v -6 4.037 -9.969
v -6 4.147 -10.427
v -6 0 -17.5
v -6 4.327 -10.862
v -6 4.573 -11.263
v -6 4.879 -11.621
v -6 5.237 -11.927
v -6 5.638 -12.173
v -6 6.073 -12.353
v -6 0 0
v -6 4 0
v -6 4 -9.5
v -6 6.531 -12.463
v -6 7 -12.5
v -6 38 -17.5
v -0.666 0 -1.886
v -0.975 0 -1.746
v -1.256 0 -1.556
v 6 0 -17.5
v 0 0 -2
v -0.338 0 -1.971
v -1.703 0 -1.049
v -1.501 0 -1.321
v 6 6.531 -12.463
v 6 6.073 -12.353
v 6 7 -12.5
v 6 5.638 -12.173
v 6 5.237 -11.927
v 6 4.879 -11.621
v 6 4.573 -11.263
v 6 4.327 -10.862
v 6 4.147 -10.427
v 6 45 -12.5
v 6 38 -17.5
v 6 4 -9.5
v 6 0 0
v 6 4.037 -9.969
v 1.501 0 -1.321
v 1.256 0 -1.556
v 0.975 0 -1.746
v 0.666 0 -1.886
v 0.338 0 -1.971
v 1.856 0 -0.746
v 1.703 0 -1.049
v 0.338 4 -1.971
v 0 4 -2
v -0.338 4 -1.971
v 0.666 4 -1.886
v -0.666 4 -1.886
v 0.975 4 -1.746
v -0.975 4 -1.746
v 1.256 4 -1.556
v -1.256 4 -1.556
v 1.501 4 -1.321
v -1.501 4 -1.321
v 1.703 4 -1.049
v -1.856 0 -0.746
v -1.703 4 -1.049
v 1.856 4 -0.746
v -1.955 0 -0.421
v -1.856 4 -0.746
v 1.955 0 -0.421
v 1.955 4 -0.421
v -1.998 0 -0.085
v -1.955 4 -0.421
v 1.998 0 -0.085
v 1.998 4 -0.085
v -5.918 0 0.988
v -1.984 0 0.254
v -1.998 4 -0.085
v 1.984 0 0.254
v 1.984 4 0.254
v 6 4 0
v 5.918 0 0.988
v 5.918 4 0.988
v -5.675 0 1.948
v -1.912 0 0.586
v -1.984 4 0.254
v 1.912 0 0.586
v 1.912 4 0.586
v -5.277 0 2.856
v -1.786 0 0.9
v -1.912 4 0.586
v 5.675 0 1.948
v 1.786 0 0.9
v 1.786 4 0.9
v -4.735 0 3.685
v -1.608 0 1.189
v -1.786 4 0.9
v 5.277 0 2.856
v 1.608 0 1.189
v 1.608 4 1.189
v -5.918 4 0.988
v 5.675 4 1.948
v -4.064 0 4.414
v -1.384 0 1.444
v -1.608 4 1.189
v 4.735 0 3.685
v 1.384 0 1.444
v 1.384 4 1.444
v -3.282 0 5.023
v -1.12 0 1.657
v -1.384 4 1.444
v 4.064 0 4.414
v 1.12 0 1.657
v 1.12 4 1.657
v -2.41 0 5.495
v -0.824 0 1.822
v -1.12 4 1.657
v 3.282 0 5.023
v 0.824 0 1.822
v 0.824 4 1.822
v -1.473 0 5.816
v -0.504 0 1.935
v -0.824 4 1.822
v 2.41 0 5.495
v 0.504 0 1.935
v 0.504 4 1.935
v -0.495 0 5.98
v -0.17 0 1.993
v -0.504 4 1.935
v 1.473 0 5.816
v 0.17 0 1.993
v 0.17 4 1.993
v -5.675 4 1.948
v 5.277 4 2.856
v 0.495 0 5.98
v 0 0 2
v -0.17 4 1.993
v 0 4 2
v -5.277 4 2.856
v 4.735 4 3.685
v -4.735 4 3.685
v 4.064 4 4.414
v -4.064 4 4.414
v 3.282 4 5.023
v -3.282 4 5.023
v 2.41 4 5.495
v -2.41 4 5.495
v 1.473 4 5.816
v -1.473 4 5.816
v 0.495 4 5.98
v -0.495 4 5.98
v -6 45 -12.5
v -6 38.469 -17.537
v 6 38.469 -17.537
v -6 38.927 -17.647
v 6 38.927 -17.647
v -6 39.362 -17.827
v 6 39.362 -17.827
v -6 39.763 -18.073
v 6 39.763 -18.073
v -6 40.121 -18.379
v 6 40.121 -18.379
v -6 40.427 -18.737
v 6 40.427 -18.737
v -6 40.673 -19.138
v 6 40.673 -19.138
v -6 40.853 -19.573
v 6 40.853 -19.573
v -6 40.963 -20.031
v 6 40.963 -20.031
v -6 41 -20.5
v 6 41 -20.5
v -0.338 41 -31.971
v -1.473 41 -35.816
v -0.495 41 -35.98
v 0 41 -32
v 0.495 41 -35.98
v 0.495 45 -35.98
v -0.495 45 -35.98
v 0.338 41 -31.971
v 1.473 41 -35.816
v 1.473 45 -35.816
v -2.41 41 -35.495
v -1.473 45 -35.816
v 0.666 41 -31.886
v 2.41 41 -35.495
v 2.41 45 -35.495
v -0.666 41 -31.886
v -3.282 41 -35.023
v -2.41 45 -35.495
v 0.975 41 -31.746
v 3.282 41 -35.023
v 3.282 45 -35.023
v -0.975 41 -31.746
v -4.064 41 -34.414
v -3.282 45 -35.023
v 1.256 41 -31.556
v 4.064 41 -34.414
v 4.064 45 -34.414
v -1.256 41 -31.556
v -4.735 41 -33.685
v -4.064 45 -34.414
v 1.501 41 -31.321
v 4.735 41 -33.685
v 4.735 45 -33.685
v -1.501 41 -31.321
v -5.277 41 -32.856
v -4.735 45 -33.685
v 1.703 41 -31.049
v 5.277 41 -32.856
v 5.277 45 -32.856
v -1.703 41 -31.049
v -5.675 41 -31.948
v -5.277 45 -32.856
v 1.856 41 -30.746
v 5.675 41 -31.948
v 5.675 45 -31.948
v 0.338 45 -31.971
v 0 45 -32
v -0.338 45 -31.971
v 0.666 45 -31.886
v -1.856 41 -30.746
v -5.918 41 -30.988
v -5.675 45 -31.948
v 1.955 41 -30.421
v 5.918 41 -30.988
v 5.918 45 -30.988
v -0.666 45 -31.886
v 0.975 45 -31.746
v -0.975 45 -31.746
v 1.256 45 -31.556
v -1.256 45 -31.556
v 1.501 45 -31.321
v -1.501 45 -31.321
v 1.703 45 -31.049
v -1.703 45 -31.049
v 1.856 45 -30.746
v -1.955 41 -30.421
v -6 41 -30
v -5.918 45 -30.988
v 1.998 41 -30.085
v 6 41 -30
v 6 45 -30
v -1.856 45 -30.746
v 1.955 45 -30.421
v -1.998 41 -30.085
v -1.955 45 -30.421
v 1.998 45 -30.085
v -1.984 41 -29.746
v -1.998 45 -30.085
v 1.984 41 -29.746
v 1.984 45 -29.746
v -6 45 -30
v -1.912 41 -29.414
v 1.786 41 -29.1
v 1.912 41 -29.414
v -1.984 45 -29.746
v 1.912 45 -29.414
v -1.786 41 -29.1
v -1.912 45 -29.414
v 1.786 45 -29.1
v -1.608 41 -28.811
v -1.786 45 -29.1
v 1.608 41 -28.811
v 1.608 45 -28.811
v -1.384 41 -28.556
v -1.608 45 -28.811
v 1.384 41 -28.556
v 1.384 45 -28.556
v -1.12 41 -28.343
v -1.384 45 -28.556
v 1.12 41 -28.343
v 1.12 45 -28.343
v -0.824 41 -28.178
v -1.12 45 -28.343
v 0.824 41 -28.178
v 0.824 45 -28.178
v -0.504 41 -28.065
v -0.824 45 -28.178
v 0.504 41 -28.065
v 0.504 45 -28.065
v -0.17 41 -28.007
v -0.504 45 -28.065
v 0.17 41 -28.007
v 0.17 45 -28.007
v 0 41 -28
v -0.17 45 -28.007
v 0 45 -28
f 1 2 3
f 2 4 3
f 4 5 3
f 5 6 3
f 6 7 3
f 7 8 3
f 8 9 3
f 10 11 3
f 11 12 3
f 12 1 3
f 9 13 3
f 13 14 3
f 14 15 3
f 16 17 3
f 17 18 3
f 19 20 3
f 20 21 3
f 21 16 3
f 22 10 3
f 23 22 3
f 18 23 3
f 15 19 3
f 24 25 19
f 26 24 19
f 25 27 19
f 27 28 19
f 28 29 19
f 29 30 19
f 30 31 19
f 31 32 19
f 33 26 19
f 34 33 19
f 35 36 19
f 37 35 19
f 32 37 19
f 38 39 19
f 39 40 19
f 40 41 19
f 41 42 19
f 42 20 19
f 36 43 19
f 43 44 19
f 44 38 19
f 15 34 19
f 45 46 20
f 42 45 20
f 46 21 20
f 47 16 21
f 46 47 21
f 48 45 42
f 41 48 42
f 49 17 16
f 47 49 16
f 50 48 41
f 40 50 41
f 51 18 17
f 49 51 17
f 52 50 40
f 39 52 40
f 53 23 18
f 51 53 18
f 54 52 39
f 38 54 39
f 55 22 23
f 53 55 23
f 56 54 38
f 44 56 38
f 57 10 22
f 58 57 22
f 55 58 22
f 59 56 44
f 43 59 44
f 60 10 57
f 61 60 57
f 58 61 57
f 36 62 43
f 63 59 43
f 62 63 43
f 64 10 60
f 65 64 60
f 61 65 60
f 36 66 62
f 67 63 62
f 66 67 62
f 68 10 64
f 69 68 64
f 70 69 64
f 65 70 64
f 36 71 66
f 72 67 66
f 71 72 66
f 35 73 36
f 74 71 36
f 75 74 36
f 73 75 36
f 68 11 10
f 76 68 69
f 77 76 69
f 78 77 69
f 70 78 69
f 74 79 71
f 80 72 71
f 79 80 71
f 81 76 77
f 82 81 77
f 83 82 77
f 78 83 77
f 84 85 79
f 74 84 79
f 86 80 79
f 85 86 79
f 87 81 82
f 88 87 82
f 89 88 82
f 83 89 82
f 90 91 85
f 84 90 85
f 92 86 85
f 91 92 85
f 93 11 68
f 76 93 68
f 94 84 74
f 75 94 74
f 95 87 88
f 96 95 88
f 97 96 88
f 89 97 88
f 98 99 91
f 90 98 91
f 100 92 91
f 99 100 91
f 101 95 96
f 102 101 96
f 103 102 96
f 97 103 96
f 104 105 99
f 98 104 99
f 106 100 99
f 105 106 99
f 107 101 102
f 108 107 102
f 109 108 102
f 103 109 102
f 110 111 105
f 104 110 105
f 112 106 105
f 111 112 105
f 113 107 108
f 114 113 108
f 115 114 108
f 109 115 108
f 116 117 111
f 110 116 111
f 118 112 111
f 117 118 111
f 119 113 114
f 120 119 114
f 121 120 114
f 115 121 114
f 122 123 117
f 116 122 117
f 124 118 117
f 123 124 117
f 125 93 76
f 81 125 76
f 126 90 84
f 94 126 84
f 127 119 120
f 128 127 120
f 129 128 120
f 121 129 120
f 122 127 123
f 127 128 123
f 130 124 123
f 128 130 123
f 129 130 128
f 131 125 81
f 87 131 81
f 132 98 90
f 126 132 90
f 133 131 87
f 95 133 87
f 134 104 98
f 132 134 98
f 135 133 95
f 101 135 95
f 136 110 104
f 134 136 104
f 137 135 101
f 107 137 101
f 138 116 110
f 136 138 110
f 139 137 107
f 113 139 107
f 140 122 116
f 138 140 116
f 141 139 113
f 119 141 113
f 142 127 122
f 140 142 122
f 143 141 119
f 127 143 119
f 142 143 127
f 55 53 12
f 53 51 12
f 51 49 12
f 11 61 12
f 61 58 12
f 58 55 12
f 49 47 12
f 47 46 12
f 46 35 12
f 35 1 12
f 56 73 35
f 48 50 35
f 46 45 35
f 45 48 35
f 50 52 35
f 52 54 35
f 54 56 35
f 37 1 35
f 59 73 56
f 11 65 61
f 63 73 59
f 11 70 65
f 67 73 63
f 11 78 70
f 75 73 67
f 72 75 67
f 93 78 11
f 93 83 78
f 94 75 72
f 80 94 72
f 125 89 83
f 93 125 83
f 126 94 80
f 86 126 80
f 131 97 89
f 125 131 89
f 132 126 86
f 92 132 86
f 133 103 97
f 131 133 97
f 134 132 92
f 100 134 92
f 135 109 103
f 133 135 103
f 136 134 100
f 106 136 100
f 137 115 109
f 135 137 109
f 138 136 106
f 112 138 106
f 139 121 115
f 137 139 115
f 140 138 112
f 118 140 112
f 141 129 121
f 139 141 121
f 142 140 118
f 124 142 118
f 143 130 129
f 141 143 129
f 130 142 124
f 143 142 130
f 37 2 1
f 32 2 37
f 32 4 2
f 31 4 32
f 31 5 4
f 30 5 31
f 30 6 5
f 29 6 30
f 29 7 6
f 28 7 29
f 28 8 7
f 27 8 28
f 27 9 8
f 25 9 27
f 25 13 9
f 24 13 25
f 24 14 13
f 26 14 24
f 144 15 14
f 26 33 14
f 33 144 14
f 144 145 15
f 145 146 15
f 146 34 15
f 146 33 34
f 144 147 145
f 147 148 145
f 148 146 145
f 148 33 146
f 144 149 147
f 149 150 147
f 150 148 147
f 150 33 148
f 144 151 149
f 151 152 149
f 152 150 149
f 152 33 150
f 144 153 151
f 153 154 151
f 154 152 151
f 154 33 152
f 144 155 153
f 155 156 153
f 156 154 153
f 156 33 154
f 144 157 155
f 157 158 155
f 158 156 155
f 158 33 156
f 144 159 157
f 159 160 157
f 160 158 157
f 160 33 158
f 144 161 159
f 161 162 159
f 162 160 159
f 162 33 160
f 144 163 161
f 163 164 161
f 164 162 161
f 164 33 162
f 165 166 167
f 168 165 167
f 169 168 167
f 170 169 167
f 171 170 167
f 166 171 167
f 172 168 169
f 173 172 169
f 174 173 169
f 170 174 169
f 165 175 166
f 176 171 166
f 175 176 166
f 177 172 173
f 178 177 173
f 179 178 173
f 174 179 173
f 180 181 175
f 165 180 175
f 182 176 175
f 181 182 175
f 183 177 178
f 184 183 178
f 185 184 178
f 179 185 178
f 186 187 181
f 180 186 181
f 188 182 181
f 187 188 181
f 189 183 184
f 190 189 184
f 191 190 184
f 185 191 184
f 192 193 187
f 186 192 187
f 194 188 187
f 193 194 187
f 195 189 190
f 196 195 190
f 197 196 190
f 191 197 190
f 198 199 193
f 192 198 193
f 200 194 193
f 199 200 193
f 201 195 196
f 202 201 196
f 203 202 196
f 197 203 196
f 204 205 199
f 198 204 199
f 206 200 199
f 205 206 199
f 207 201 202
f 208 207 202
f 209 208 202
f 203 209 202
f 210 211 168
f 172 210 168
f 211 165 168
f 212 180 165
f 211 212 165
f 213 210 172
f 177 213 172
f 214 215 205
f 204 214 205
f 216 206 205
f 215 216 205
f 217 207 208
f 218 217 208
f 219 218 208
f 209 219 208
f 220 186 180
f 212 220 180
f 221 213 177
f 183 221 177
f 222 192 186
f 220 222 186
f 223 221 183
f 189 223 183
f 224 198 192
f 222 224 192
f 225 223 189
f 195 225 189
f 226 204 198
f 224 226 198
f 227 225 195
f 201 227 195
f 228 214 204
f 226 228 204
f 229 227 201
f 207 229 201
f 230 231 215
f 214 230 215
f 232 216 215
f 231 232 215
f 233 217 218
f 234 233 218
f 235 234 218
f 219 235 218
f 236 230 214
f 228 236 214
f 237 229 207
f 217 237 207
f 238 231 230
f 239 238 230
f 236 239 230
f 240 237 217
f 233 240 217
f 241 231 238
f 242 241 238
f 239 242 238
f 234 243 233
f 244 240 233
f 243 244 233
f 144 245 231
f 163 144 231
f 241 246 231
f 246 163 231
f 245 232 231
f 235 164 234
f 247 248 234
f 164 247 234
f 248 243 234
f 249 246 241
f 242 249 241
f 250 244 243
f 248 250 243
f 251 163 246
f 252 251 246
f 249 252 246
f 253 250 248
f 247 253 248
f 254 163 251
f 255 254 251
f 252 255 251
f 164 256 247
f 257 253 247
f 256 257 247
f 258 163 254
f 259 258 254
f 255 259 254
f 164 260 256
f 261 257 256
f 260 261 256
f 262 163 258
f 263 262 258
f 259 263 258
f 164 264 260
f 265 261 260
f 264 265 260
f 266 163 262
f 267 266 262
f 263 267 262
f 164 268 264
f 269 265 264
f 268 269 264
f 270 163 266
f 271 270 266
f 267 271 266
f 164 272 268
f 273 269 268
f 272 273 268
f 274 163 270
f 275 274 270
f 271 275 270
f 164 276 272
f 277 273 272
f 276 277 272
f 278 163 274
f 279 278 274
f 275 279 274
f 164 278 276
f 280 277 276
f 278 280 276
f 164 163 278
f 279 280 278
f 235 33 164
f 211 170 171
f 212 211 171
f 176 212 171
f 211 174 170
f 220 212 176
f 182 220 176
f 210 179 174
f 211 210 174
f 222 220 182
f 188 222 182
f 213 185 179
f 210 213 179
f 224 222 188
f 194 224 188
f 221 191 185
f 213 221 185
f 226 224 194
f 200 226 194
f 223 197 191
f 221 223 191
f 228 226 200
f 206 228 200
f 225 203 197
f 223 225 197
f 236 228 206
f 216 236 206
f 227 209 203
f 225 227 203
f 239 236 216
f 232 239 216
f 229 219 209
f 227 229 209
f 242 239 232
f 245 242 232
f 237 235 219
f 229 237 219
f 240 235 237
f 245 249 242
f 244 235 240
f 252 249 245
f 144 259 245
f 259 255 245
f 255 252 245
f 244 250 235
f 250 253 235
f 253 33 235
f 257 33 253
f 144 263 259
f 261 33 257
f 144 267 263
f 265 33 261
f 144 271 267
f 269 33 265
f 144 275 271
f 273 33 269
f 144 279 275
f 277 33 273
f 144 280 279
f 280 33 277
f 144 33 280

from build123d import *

# Parameters (mm, degrees)
SKETCH1_R                      = 2
BOSS_EXTRUDE1_DEPTH            = 4
SKETCH2_W                      = 12
SKETCH2_H                      = 5
BOSS_EXTRUDE2_DEPTH            = 37
SKETCH3_R                      = 2
SKETCH3_W                      = 12
SKETCH3_H                      = 5
BOSS_EXTRUDE3_DEPTH            = 4
FILLET1_R                      = 3
CUT_EXTRUDE1_REACH             = 56.891
SKETCH4_W                      = 12
SKETCH4_H                      = 19.420745895
CUT_EXTRUDE1_DIRECTION_2_DEPTH = 10


with BuildPart() as part:
    # Sketch1 → Boss-Extrude1 (new body)
    with BuildSketch(Plane(origin=(0, 0, 0), x_dir=(1, 0, 0), z_dir=(0, 1, 0))):
        with BuildLine():
            ThreePointArc((6, 30), (0, 36), (-6, 30))
            Line((-6, 30), (-6, 0))
            ThreePointArc((-6, 0), (0, -6), (6, 0))
            Line((6, 0), (6, 30))
        make_face()
        with Locations(Location((0, 30, 0), (0, 0, 270))):
            Circle(SKETCH1_R, mode=Mode.SUBTRACT)
        with Locations(Location((0, 0, 0), (0, 0, 270))):
            Circle(SKETCH1_R, mode=Mode.SUBTRACT)
    extrude(amount=BOSS_EXTRUDE1_DEPTH)

    # Sketch2 → Boss-Extrude2 (add)
    with BuildSketch(Plane(origin=(0, 4, 0), x_dir=(1, 0, 0), z_dir=(0, 1, 0))):
        with Locations((0, 15)):
            Rectangle(SKETCH2_W, SKETCH2_H)
    extrude(amount=BOSS_EXTRUDE2_DEPTH)

    # Sketch3 → Boss-Extrude3 (add)
    # profile 1 of 2: a face of its own
    with BuildSketch(Plane(origin=(0, 41, 0), x_dir=(1, 0, 0), z_dir=(0, 1, 0))):
        with BuildLine():
            Line((6, 17.5), (6, 30))
            ThreePointArc((6, 30), (0, 36), (-6, 30))
            Line((-6, 30), (-6, 17.5))
            Line((-6, 17.5), (6, 17.5))
        make_face()
        with Locations(Location((0, 30, 0), (0, 0, 270))):
            Circle(SKETCH3_R, mode=Mode.SUBTRACT)
    # profile 2 of 2: a face of its own
    with BuildSketch(Plane(origin=(0, 41, 0), x_dir=(1, 0, 0), z_dir=(0, 1, 0))):
        with Locations((0, 15)):
            Rectangle(SKETCH3_W, SKETCH3_H)
    extrude(amount=BOSS_EXTRUDE3_DEPTH)

    # Fillet1
    fillet1_edges = [part.edges().sort_by_distance(p)[0] for p in [
        (0, 4, -17.5),
        (0, 41, -17.5),
        (0, 4, -12.5),
    ]]
    fillet(fillet1_edges, radius=FILLET1_R)

    # Sketch4 → Cut-Extrude1 (cut, up to next)
    with BuildSketch(Plane(origin=(0, 4, 0), x_dir=(1, 0, 0), z_dir=(0, 1, 0)), mode=Mode.PRIVATE) as cut_extrude1_sk1:
        with Locations((0, 27.210372948)):
            Rectangle(SKETCH4_W, SKETCH4_H)
    cut_extrude1_tool1 = extrude(cut_extrude1_sk1.sketch, amount=-CUT_EXTRUDE1_REACH, mode=Mode.PRIVATE) & part.part
    add(cut_extrude1_tool1.solids().sort_by_distance((0, 4, -27.210373))[0], mode=Mode.SUBTRACT)

    # Sketch4 → Cut-Extrude1 direction 2 (cut)
    with BuildSketch(Plane(origin=(0, 4, 0), x_dir=(1, 0, 0), z_dir=(0, 1, 0))):
        with Locations((0, 27.210372948)):
            Rectangle(SKETCH4_W, SKETCH4_H)
    extrude(amount=CUT_EXTRUDE1_DIRECTION_2_DEPTH, mode=Mode.SUBTRACT)


solid = part.part
